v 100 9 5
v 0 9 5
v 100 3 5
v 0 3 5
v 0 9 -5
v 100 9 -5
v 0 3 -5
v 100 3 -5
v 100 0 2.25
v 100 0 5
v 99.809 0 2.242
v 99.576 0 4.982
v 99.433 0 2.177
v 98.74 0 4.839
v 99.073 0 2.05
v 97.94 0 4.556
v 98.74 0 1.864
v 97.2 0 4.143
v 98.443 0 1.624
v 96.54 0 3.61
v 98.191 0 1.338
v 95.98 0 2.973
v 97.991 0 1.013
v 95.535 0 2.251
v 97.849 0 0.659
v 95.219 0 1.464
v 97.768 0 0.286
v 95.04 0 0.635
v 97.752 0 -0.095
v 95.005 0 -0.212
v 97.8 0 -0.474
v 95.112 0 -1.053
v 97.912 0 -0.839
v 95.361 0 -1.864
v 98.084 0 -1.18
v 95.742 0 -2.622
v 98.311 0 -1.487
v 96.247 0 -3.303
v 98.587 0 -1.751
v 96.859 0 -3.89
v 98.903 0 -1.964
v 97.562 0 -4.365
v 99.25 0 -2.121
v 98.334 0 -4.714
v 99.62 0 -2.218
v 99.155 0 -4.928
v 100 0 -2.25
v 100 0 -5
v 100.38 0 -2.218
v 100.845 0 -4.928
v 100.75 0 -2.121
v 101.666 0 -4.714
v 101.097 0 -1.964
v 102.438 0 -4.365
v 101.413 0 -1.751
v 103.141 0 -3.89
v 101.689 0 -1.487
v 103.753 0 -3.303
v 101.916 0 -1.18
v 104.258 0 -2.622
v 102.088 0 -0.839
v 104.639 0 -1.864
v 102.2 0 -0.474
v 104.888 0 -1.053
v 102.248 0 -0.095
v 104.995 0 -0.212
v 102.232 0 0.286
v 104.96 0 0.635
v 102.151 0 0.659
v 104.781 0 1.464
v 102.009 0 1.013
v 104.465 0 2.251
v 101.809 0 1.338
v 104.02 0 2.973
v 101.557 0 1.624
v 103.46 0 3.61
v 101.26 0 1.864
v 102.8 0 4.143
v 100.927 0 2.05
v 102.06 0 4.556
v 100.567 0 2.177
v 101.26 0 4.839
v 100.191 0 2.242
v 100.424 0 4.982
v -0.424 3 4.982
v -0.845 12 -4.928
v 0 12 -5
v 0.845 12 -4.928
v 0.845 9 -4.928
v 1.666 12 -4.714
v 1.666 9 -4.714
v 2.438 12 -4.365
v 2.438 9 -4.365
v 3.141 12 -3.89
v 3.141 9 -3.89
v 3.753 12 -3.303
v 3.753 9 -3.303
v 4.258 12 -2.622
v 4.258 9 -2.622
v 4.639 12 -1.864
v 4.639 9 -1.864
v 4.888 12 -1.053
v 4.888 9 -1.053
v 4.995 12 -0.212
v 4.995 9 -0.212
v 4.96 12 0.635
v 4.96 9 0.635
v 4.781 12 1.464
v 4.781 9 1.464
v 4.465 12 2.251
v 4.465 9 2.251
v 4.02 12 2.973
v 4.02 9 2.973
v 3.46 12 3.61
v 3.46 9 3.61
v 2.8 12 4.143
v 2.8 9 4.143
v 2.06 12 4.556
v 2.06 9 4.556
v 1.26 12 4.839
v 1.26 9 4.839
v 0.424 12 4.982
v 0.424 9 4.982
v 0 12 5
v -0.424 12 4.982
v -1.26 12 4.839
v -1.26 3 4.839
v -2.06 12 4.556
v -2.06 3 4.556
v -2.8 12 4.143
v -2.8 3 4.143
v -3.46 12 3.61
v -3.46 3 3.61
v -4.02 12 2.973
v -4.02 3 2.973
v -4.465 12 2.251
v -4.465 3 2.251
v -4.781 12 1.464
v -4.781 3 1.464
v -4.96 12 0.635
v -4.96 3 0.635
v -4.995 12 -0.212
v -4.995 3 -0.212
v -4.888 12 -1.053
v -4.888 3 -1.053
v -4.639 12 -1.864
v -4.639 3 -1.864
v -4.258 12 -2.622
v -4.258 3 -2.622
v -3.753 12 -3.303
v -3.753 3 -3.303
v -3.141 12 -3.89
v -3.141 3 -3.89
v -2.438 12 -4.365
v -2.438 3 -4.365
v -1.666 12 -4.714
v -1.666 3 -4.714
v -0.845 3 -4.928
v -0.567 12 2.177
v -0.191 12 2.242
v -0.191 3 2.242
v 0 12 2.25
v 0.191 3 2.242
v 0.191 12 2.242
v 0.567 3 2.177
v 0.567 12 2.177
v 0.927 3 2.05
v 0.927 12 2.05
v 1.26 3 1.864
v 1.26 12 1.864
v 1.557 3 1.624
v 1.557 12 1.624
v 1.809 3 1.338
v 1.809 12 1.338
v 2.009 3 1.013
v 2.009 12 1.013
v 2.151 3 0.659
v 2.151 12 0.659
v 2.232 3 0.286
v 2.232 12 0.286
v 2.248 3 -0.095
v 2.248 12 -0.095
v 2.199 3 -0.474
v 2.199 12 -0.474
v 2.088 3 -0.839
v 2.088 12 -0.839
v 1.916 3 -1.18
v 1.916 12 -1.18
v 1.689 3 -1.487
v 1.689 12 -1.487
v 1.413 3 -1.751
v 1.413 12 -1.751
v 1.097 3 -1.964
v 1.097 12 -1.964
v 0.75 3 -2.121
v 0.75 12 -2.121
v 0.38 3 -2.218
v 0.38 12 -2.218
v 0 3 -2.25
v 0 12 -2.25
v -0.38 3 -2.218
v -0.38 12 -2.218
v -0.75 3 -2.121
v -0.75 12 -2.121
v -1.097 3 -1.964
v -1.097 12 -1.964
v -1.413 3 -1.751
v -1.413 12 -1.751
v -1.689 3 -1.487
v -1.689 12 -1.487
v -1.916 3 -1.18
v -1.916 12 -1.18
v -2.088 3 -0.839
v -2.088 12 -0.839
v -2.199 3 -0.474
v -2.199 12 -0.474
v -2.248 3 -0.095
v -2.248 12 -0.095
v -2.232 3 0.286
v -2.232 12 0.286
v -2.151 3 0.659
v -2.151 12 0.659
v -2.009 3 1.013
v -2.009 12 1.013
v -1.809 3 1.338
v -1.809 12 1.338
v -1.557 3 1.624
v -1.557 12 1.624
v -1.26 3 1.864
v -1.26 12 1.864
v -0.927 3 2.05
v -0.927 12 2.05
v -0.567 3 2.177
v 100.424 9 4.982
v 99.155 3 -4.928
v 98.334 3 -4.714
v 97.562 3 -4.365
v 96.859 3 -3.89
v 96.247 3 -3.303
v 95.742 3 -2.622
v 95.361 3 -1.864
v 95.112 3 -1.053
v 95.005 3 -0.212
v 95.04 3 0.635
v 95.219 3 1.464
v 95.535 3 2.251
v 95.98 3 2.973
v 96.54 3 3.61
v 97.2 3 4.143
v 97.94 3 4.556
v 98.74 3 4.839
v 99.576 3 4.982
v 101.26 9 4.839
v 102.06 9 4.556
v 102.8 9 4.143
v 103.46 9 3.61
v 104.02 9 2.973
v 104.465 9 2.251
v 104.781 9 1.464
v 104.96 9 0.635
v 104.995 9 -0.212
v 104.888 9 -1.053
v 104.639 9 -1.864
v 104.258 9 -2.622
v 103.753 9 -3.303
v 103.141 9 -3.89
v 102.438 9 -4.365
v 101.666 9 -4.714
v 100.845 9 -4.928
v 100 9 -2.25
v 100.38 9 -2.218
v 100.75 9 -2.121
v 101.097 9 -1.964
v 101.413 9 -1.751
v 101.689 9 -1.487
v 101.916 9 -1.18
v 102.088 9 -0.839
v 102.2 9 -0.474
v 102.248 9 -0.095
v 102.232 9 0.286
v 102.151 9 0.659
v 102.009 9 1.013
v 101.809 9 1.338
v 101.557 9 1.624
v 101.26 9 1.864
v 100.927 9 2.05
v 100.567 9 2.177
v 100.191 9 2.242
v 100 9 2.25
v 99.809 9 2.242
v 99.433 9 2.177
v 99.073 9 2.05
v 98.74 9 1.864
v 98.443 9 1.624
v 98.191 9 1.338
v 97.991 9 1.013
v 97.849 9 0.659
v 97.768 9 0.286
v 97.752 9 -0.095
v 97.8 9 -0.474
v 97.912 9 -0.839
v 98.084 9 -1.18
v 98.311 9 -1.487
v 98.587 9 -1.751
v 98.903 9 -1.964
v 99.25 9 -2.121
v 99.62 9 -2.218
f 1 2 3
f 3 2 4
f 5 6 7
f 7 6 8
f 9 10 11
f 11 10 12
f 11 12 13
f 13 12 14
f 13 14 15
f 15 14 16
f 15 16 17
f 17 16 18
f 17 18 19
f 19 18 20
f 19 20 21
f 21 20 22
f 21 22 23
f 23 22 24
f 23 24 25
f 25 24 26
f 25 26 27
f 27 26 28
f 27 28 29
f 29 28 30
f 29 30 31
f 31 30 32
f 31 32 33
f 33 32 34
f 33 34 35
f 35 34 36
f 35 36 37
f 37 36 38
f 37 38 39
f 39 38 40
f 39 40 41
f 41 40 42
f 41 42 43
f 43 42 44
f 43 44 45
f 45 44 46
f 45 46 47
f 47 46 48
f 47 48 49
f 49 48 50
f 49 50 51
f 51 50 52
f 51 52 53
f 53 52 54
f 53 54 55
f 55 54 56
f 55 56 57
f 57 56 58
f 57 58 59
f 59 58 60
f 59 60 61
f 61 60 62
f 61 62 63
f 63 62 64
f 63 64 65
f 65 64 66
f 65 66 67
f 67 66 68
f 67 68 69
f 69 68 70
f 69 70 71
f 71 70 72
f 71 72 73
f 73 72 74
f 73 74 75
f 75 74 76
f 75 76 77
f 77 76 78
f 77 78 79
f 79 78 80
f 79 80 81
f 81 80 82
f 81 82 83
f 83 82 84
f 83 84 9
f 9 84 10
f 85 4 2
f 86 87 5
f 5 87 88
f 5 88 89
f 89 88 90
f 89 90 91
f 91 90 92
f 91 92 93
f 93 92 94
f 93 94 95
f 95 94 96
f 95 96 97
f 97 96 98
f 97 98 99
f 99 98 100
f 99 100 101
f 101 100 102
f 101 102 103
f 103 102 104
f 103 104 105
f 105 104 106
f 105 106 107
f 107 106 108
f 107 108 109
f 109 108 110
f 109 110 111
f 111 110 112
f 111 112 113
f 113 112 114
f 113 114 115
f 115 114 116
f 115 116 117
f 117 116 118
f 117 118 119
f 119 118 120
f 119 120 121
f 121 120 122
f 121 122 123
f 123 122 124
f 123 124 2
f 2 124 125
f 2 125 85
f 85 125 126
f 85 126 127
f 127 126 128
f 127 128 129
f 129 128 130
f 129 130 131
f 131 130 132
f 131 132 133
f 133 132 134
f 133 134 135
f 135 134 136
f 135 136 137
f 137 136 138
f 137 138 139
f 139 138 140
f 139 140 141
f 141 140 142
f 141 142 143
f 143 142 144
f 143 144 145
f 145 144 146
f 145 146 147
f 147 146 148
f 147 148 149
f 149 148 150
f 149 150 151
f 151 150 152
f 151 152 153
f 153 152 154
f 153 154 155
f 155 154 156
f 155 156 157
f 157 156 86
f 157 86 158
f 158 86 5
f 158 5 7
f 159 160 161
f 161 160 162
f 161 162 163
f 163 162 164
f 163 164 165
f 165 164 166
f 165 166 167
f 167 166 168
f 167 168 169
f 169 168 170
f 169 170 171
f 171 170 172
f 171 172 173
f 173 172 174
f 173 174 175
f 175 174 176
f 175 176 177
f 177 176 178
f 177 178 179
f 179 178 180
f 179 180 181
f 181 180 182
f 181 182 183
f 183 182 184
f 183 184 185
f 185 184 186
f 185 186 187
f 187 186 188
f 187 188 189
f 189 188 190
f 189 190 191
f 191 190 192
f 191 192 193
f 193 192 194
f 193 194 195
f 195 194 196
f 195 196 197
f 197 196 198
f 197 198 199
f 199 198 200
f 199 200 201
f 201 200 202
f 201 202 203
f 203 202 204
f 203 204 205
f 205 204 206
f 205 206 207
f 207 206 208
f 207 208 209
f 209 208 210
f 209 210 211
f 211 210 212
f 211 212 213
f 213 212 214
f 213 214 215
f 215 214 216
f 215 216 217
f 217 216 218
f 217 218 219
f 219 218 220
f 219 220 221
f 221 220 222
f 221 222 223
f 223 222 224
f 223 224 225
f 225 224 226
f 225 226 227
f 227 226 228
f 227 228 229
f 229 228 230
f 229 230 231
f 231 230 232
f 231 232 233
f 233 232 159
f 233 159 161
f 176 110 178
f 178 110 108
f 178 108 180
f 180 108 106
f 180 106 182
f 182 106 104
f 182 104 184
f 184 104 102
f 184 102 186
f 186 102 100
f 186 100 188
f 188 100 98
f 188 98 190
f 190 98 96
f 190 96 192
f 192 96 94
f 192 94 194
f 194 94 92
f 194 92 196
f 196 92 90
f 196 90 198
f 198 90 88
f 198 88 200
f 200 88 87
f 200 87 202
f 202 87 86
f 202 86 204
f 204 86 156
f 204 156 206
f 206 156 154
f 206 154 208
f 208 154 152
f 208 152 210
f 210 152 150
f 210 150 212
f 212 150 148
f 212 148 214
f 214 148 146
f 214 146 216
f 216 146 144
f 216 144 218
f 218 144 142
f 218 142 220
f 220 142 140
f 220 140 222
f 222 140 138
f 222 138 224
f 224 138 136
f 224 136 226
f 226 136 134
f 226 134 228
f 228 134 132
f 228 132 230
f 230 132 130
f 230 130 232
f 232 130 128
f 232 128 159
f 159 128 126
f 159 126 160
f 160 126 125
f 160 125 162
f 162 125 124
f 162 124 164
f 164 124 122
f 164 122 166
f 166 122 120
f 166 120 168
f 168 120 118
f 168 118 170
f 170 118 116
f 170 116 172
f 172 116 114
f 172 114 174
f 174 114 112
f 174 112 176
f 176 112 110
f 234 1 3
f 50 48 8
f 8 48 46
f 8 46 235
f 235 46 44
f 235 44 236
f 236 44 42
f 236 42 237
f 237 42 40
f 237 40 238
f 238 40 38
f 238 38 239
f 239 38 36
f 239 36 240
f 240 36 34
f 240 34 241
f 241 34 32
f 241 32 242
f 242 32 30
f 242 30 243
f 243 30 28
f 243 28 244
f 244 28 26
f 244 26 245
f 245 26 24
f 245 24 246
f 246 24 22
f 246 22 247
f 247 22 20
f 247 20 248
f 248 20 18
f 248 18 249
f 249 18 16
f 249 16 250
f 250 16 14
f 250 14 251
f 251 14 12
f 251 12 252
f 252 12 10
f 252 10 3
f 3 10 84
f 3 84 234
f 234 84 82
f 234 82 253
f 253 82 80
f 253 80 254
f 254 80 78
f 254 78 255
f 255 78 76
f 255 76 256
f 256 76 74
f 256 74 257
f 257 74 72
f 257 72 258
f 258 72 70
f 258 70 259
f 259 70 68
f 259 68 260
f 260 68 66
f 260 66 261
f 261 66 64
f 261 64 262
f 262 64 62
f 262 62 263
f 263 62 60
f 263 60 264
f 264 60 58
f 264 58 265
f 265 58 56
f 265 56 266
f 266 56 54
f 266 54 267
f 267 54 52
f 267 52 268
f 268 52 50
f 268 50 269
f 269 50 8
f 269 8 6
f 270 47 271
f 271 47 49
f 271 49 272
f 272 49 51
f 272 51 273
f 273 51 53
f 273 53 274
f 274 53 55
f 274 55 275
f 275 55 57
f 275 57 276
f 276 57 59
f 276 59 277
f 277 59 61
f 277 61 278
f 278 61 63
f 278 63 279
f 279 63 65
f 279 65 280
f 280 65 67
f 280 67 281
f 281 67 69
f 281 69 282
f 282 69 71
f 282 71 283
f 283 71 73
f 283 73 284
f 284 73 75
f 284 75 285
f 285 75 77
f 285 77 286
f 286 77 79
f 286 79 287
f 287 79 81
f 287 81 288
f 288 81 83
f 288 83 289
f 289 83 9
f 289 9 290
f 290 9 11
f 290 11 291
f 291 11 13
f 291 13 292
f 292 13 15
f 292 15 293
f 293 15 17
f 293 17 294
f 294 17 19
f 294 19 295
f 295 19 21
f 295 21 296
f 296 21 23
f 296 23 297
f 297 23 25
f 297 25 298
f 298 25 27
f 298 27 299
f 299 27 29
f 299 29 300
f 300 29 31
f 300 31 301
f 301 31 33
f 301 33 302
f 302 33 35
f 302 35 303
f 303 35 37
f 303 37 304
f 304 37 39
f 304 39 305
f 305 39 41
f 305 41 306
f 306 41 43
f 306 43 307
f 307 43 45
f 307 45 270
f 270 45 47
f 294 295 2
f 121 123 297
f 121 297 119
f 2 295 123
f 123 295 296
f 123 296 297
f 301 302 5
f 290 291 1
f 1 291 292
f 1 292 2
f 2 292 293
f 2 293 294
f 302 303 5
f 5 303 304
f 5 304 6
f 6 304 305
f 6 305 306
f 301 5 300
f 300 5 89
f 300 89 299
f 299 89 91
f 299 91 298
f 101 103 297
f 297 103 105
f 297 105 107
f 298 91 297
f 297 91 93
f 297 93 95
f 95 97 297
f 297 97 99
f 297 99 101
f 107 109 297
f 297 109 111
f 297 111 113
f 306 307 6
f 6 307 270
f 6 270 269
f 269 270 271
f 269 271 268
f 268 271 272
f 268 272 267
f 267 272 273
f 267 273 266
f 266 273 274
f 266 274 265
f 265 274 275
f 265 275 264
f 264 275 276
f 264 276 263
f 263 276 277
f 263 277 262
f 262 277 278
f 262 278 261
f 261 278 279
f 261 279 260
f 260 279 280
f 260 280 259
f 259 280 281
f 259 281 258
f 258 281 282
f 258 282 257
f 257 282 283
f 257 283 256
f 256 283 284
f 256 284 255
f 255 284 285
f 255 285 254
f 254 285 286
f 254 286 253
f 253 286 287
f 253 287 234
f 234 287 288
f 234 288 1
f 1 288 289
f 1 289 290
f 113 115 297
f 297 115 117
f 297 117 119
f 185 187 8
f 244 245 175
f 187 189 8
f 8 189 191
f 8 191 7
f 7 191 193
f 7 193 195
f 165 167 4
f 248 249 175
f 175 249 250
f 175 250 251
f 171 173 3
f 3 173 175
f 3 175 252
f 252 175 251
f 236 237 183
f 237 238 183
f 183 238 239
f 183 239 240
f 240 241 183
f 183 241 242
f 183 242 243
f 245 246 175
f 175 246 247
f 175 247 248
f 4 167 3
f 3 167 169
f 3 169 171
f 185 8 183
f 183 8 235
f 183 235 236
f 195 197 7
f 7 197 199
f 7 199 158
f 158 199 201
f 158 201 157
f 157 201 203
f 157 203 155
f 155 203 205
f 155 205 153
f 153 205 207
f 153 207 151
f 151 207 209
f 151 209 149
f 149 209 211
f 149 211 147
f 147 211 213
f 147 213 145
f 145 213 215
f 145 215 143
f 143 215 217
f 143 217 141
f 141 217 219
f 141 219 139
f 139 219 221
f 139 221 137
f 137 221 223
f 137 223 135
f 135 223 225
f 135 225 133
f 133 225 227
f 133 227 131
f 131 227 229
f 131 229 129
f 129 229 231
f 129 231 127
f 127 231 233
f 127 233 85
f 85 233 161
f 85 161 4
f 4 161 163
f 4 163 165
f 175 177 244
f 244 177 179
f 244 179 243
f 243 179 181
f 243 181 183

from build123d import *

# Parameters (mm, degrees)
SKETCH1_R               = 2.25
BOSS_EXTRUDE1_DEPTH     = 12
CUT_EXTRUDE_THIN1_START = -3
SKETCH2_R               = 1005
SKETCH2_R_2             = 5
CUT_EXTRUDE_THIN1_DEPTH = 3
SKETCH3_R               = 1005
SKETCH3_R_2             = 5
CUT_EXTRUDE_THIN2_DEPTH = 3


with BuildPart() as part:
    # Sketch1 → Boss-Extrude1 (new body)
    with BuildSketch(Plane(origin=(0, 0, 0), x_dir=(1, 0, 0), z_dir=(0, 1, 0))):
        with BuildLine():
            Line((0, 5), (100, 5))
            ThreePointArc((100, 5), (105, 0), (100, -5))
            Line((100, -5), (0, -5))
            ThreePointArc((0, -5), (-5, 0), (0, 5))
        make_face()
        with Locations(Location((0, 0, 0), (0, 0, 270))):
            Circle(SKETCH1_R, mode=Mode.SUBTRACT)
        with Locations(Location((100, 0, 0), (0, 0, 270))):
            Circle(SKETCH1_R, mode=Mode.SUBTRACT)
    extrude(amount=BOSS_EXTRUDE1_DEPTH)

    # Sketch2 → Cut-Extrude-Thin1 (cut)
    with BuildSketch(Plane(origin=(0, 12, 0), x_dir=(1, 0, 0), z_dir=(0, 1, 0)).offset(CUT_EXTRUDE_THIN1_START)):
        Circle(SKETCH2_R)
        Circle(SKETCH2_R_2, mode=Mode.SUBTRACT)
    extrude(amount=CUT_EXTRUDE_THIN1_DEPTH, mode=Mode.SUBTRACT)

    # Sketch3 → Cut-Extrude-Thin2 (cut)
    with BuildSketch(Plane.XZ):
        with Locations((100, 0)):
            Circle(SKETCH3_R)
        with Locations((100, 0)):
            Circle(SKETCH3_R_2, mode=Mode.SUBTRACT)
    extrude(amount=-CUT_EXTRUDE_THIN2_DEPTH, mode=Mode.SUBTRACT)


solid = part.part
